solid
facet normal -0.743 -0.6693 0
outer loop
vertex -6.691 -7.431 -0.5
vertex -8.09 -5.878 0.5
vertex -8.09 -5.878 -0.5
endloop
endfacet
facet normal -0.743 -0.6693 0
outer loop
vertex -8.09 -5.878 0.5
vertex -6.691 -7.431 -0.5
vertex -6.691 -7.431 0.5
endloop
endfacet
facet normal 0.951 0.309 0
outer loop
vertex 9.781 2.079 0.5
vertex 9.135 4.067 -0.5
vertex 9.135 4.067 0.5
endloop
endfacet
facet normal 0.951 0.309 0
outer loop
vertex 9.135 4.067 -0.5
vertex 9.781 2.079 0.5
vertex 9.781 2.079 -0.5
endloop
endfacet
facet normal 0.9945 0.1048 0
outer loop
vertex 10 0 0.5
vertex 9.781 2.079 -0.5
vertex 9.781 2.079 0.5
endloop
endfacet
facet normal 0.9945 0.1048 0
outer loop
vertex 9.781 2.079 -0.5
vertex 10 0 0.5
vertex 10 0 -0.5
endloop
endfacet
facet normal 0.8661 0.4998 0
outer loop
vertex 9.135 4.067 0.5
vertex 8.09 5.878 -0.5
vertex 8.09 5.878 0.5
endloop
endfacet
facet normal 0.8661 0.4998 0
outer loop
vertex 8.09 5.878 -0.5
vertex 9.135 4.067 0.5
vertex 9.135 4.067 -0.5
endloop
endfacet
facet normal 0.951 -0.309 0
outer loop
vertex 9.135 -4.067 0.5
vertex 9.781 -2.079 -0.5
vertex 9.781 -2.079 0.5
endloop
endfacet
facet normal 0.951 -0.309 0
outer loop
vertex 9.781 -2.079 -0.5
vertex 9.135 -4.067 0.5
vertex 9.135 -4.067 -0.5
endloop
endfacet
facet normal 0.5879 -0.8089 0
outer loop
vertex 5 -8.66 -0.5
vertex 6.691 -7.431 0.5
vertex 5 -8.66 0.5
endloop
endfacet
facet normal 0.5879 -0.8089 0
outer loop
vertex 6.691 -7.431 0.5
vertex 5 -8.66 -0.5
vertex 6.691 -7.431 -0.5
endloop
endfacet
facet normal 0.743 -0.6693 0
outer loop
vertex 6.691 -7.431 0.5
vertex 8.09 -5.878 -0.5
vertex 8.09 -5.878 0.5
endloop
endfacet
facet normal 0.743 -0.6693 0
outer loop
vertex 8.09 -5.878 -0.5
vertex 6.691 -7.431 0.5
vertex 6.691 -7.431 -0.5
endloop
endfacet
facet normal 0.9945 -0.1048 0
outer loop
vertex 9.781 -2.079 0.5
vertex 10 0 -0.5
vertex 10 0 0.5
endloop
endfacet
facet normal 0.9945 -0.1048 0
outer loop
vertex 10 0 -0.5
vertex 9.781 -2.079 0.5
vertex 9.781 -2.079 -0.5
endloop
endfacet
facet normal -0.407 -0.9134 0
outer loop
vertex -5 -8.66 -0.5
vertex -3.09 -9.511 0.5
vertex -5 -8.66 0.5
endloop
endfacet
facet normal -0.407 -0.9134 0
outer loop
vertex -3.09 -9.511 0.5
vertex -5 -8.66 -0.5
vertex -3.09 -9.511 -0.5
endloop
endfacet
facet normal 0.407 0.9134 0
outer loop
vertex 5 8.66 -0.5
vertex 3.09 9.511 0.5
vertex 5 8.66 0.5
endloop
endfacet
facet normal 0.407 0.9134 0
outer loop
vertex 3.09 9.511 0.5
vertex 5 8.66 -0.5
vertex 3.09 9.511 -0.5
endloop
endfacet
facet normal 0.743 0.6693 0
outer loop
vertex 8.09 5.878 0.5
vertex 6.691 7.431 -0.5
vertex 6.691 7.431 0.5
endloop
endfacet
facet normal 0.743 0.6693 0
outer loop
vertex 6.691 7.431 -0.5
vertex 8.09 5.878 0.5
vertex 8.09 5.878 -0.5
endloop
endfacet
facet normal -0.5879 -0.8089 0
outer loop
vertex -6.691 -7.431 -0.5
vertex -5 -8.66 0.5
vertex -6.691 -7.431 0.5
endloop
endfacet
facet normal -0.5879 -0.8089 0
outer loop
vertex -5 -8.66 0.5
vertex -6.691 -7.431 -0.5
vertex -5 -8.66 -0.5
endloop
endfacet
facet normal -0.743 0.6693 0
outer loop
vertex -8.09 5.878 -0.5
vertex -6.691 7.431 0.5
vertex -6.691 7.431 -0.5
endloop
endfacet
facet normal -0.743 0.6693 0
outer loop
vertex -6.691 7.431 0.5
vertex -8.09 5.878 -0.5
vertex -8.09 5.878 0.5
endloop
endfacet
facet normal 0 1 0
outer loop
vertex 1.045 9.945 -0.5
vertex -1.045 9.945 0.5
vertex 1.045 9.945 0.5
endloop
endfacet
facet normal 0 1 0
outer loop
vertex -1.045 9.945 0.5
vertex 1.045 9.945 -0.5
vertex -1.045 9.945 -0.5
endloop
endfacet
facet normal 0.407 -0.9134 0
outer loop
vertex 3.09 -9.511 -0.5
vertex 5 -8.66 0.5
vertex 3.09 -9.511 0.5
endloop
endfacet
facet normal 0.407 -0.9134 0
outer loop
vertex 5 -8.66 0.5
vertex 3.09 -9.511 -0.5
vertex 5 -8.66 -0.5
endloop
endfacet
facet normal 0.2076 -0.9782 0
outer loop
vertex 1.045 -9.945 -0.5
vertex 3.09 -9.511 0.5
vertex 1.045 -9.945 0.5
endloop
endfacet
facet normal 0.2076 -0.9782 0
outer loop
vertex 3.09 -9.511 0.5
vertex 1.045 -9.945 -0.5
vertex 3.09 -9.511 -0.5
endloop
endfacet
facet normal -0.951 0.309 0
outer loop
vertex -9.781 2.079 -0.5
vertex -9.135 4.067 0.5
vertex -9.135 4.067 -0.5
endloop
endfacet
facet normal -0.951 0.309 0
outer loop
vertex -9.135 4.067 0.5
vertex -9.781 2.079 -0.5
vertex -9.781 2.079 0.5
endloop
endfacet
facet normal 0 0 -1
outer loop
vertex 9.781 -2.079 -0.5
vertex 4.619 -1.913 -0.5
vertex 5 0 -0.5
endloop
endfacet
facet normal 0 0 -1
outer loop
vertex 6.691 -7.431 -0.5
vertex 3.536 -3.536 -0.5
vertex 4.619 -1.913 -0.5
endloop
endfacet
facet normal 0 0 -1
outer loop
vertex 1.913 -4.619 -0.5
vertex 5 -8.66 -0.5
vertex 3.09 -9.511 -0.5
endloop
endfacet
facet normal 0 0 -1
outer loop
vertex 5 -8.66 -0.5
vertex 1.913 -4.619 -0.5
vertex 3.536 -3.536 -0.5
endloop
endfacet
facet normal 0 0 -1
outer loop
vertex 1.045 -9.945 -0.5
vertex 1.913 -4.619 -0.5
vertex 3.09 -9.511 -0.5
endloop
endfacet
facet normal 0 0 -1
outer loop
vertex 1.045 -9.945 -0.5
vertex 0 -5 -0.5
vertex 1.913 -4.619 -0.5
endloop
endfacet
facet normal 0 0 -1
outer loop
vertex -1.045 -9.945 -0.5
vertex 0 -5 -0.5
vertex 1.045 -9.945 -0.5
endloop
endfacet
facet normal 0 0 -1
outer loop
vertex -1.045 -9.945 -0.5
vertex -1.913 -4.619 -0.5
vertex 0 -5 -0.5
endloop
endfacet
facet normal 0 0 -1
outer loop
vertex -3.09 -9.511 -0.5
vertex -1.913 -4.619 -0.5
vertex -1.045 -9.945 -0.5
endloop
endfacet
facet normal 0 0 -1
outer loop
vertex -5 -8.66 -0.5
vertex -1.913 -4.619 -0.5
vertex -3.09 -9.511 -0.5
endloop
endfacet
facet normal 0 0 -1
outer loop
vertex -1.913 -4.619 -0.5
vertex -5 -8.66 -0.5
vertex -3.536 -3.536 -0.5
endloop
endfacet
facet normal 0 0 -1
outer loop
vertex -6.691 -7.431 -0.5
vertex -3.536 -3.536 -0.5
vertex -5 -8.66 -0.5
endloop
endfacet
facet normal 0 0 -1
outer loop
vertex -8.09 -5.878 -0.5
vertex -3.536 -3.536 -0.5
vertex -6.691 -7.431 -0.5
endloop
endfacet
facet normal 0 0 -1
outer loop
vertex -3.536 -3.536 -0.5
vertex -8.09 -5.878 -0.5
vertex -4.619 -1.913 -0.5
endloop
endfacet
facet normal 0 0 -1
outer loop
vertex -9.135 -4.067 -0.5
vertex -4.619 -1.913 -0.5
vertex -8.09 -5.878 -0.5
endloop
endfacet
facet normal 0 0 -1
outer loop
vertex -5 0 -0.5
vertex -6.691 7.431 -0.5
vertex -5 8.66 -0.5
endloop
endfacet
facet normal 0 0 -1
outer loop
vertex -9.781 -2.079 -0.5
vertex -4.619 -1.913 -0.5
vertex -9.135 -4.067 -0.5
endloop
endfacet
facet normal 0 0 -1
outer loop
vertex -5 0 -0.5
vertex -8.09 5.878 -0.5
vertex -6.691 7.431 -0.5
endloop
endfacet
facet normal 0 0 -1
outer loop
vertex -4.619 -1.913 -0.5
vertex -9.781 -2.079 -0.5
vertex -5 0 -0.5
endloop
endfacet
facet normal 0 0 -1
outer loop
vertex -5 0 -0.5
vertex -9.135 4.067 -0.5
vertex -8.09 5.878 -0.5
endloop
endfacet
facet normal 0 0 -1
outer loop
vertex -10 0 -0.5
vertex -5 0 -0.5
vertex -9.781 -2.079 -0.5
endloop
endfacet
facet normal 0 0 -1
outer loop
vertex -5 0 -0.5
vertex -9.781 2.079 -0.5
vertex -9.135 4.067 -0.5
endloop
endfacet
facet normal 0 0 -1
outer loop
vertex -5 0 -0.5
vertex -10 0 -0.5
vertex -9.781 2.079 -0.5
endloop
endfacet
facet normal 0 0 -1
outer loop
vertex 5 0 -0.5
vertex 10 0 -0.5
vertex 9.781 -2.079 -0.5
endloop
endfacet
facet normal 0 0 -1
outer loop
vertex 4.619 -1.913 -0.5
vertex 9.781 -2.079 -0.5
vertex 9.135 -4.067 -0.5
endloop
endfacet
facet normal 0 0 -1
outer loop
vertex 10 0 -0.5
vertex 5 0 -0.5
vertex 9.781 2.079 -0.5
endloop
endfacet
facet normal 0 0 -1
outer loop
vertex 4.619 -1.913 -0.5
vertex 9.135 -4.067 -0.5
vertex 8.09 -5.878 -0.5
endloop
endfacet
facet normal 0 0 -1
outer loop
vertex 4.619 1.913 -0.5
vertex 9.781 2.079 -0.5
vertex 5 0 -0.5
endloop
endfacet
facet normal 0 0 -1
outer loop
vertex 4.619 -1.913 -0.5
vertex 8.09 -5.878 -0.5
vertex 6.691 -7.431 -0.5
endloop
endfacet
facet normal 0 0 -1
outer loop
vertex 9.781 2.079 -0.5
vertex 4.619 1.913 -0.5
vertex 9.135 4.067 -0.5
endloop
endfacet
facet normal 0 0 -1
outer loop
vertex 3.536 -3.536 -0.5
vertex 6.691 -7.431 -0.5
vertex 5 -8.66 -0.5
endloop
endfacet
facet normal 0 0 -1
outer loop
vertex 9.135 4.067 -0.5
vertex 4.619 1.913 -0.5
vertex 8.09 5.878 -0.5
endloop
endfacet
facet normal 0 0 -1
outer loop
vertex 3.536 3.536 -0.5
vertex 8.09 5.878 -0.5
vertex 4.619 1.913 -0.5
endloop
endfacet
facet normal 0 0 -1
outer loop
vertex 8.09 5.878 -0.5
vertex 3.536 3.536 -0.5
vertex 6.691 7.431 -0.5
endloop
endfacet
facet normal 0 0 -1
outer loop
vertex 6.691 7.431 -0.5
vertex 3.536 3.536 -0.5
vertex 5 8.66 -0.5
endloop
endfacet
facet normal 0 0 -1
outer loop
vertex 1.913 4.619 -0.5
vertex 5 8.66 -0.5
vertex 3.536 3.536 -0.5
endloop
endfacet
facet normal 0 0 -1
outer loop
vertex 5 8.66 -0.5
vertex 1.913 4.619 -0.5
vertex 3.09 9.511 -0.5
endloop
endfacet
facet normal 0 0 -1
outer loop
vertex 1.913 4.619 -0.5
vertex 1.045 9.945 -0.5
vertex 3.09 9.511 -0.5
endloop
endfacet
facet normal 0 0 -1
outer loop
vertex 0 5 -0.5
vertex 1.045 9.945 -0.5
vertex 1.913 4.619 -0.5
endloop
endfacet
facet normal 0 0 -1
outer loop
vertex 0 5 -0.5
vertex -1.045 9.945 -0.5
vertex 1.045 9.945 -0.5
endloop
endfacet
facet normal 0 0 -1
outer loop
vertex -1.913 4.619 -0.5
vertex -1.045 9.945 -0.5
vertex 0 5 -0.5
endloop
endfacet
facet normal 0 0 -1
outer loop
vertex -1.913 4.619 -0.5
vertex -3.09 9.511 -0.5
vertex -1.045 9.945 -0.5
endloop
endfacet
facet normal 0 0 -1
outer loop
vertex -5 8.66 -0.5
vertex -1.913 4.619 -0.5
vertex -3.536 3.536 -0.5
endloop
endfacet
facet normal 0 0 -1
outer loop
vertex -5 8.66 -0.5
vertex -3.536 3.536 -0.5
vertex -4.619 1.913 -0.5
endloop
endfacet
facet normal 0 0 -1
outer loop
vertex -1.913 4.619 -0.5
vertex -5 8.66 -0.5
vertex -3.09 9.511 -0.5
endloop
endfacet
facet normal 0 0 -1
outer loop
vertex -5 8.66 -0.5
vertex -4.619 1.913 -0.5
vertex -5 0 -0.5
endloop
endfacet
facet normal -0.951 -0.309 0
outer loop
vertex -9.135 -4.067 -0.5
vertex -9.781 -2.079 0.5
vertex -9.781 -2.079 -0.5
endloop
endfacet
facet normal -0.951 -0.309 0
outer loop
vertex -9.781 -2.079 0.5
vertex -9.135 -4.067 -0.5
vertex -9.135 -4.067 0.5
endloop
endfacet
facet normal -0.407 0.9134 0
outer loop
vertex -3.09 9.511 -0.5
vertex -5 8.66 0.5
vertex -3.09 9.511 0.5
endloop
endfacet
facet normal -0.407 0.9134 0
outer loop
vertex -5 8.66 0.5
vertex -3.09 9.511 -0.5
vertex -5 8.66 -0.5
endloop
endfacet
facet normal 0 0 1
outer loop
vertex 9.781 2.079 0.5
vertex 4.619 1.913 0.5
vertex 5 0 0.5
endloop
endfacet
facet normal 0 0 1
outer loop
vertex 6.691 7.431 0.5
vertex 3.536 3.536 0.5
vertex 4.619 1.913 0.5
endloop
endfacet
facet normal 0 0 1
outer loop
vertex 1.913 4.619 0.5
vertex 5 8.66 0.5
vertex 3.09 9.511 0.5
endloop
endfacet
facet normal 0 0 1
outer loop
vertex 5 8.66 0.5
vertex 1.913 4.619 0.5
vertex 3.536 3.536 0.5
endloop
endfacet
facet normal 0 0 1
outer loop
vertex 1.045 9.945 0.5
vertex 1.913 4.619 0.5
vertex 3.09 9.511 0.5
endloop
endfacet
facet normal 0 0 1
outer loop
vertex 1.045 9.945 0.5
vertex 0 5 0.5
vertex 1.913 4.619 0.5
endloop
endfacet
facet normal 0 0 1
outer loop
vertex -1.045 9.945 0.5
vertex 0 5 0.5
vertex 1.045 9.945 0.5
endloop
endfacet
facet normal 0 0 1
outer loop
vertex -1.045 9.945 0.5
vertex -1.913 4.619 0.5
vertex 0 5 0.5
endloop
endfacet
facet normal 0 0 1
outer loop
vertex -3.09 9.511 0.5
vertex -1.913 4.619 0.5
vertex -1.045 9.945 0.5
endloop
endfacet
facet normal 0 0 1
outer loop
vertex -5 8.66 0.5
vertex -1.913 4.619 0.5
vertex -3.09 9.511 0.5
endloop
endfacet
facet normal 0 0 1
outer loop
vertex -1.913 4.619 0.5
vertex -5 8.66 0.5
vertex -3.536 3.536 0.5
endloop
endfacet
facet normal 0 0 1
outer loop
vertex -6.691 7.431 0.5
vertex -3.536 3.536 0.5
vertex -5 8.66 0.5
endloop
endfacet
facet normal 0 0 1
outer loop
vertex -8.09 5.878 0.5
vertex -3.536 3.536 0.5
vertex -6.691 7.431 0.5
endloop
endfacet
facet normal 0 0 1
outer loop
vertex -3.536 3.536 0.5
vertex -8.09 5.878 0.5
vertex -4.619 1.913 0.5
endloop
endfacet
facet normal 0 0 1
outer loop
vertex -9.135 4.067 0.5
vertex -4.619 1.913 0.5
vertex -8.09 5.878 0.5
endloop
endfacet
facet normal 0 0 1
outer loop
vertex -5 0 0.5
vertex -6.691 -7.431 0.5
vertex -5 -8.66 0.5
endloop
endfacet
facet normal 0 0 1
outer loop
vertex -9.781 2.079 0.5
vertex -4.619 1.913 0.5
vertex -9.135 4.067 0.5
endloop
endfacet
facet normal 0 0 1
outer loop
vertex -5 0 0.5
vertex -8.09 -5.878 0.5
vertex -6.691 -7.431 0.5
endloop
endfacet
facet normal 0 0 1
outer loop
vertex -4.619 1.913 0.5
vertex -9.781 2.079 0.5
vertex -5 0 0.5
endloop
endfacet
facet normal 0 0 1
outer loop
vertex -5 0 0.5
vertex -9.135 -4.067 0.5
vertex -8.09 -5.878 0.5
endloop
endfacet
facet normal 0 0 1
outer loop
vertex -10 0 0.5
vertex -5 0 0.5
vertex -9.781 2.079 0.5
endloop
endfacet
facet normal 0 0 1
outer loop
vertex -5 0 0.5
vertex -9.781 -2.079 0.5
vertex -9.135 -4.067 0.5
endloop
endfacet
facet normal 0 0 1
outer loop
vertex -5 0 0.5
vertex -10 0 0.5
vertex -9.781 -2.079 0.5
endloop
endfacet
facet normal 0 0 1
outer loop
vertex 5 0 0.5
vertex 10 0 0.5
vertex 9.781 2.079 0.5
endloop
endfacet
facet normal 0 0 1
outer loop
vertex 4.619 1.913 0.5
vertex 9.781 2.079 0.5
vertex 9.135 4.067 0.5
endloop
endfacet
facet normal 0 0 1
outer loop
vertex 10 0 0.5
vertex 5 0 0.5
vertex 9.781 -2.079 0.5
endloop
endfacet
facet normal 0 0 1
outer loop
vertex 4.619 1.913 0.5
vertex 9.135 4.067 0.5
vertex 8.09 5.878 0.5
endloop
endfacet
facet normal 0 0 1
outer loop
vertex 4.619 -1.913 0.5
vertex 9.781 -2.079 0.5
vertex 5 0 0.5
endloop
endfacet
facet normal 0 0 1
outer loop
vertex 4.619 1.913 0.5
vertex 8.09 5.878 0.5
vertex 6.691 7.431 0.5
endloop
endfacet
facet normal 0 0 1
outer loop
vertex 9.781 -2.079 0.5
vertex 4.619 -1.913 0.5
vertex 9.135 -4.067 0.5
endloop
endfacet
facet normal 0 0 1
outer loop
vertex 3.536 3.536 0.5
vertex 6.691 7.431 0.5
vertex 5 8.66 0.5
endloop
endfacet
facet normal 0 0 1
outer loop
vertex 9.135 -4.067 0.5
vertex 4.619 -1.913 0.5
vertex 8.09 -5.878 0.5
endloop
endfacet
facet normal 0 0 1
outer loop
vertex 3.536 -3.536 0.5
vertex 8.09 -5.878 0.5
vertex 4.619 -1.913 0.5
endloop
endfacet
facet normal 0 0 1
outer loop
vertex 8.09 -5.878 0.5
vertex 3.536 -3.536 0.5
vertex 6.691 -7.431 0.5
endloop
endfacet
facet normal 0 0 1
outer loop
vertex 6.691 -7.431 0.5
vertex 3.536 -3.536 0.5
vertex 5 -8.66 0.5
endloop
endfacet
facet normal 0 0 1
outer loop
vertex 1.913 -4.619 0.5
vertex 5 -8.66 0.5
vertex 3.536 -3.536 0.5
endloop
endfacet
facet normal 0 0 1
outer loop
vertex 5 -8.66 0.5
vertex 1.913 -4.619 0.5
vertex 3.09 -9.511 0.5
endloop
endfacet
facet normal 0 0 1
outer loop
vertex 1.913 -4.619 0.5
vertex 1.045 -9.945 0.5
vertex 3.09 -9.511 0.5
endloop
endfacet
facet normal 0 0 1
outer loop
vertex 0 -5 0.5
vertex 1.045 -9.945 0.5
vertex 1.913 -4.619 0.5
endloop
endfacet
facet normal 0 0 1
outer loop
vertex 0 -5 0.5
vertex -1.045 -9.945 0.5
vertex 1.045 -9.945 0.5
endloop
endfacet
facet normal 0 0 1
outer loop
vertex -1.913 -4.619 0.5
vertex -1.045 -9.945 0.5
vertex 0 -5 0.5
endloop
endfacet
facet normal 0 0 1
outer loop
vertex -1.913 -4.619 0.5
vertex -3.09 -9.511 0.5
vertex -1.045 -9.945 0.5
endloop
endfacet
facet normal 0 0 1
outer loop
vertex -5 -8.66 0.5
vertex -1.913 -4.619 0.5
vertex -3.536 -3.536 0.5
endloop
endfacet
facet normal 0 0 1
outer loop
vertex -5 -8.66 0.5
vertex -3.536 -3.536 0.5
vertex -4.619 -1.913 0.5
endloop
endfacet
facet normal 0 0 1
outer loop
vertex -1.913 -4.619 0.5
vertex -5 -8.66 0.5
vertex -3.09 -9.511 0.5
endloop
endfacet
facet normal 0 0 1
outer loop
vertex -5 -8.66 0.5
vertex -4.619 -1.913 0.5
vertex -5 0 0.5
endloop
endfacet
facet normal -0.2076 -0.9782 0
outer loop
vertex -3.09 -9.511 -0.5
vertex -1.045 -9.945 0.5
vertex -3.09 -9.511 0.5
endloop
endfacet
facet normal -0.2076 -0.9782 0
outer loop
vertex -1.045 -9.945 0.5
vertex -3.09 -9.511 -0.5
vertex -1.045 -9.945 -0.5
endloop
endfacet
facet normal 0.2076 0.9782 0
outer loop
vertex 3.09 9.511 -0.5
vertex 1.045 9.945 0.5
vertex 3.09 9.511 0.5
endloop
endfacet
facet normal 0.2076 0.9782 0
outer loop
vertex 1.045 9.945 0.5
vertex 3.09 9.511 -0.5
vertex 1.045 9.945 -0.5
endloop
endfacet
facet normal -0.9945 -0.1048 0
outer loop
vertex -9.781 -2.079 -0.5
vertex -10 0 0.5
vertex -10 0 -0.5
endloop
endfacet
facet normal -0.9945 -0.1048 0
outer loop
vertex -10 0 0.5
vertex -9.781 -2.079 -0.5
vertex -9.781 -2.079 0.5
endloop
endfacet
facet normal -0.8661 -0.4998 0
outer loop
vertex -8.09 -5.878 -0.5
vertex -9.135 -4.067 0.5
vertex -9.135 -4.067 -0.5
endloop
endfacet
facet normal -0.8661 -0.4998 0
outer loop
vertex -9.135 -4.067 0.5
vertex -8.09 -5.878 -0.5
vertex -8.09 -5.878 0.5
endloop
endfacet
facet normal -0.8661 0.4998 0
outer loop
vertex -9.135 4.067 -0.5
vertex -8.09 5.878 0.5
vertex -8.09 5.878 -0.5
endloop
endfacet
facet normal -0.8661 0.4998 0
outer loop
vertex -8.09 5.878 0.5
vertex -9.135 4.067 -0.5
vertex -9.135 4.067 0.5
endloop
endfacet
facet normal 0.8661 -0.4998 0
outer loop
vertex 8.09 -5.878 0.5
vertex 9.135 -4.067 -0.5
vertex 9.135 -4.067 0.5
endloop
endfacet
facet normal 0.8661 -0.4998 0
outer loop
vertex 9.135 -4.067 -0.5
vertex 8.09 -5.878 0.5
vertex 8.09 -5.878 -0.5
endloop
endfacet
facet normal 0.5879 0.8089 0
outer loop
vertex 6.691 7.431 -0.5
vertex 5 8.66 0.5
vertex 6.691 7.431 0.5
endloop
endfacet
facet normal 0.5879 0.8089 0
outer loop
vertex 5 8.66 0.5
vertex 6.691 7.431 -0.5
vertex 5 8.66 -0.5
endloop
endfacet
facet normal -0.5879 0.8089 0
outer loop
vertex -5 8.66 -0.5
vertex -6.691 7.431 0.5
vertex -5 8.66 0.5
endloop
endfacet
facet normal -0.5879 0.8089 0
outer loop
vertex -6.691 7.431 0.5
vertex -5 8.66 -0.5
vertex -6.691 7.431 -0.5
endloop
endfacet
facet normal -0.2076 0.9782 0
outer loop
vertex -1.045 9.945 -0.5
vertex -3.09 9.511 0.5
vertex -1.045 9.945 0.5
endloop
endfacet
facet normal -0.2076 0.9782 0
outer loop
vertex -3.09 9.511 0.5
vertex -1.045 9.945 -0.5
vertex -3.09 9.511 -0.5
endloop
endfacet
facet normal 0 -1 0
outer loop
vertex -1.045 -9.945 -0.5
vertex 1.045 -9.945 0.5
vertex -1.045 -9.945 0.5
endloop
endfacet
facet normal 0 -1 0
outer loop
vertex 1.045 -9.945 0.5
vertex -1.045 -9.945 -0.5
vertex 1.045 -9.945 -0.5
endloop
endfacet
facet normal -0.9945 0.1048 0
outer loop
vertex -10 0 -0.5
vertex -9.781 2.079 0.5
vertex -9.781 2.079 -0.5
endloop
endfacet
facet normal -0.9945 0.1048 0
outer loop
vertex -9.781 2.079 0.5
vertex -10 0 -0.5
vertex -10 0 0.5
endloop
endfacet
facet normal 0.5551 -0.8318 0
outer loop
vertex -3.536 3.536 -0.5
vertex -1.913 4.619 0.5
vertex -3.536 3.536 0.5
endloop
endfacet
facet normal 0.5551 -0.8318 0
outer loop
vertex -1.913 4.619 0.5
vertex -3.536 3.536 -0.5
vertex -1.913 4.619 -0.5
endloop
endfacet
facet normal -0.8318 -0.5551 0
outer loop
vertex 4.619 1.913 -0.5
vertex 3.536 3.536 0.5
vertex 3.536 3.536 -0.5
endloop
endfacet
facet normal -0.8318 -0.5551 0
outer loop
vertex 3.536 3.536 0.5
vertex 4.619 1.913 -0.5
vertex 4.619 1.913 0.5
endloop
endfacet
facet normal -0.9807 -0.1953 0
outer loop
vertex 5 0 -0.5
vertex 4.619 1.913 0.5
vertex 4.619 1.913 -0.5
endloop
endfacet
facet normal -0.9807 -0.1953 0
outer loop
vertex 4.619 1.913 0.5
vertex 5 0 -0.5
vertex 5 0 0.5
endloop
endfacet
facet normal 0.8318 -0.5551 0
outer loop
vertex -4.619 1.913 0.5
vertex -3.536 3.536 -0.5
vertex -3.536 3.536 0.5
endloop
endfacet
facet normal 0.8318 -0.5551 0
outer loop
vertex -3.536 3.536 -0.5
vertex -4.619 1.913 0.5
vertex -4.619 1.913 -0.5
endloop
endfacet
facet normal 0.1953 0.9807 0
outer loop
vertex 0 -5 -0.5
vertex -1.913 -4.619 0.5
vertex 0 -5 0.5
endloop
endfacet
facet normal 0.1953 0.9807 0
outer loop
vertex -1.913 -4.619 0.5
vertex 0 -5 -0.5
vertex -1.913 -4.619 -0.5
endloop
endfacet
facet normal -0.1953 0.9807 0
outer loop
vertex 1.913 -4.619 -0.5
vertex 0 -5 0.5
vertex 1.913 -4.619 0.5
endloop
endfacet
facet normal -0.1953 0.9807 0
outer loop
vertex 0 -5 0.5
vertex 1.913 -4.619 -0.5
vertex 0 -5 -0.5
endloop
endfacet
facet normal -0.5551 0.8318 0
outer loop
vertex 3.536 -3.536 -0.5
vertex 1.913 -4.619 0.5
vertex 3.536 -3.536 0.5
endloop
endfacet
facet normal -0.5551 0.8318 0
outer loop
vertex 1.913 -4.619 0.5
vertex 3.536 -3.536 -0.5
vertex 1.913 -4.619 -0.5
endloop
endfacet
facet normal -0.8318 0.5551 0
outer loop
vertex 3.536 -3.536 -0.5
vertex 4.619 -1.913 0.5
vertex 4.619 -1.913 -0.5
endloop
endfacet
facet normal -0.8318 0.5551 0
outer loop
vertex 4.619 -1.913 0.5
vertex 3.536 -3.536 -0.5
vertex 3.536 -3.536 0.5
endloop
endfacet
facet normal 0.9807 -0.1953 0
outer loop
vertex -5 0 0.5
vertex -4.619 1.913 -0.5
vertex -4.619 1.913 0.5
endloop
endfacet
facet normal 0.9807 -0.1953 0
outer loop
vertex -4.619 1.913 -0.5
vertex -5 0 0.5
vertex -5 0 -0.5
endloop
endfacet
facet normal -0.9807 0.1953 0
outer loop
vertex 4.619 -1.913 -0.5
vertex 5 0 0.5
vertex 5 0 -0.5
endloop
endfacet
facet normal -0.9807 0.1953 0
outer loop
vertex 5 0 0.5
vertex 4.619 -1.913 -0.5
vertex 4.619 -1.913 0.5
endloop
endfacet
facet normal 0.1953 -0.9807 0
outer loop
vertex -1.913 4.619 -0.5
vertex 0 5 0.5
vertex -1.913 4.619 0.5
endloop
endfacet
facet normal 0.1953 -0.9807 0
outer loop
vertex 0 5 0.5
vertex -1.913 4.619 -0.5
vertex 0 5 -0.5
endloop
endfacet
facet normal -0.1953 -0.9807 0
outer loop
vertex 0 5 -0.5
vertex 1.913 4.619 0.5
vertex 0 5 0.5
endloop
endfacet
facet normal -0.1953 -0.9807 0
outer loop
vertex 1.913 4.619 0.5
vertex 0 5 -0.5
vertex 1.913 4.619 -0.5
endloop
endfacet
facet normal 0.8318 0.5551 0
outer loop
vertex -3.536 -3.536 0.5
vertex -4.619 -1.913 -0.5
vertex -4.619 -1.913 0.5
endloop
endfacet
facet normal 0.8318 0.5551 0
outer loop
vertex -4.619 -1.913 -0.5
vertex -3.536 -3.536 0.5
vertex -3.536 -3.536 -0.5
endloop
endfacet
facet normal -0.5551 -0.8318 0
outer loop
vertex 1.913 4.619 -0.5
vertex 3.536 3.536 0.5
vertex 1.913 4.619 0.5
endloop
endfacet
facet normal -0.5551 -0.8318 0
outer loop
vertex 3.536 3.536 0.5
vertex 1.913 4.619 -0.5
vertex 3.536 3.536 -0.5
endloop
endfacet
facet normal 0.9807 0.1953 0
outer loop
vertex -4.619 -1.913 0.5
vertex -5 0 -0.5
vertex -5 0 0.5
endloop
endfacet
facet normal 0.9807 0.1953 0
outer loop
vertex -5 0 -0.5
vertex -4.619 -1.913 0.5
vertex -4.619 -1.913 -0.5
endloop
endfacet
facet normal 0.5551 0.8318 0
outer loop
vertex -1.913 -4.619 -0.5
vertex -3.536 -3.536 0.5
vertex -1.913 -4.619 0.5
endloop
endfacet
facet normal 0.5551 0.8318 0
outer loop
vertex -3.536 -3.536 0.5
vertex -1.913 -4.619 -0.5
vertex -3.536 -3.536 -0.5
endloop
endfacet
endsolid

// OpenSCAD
// Parameters for the spacer ring
module spacer_ring(outer_diameter = 20, inner_diameter = 10, thickness = 1) { // Reduced thickness to match the original model
    difference() {
        // Outer cylinder
        cylinder(d = outer_diameter, h = thickness, center = true);
        // Inner hole
        cylinder(d = inner_diameter, h = thickness + 1, center = true);
    }
}

// Render the spacer ring
spacer_ring();
